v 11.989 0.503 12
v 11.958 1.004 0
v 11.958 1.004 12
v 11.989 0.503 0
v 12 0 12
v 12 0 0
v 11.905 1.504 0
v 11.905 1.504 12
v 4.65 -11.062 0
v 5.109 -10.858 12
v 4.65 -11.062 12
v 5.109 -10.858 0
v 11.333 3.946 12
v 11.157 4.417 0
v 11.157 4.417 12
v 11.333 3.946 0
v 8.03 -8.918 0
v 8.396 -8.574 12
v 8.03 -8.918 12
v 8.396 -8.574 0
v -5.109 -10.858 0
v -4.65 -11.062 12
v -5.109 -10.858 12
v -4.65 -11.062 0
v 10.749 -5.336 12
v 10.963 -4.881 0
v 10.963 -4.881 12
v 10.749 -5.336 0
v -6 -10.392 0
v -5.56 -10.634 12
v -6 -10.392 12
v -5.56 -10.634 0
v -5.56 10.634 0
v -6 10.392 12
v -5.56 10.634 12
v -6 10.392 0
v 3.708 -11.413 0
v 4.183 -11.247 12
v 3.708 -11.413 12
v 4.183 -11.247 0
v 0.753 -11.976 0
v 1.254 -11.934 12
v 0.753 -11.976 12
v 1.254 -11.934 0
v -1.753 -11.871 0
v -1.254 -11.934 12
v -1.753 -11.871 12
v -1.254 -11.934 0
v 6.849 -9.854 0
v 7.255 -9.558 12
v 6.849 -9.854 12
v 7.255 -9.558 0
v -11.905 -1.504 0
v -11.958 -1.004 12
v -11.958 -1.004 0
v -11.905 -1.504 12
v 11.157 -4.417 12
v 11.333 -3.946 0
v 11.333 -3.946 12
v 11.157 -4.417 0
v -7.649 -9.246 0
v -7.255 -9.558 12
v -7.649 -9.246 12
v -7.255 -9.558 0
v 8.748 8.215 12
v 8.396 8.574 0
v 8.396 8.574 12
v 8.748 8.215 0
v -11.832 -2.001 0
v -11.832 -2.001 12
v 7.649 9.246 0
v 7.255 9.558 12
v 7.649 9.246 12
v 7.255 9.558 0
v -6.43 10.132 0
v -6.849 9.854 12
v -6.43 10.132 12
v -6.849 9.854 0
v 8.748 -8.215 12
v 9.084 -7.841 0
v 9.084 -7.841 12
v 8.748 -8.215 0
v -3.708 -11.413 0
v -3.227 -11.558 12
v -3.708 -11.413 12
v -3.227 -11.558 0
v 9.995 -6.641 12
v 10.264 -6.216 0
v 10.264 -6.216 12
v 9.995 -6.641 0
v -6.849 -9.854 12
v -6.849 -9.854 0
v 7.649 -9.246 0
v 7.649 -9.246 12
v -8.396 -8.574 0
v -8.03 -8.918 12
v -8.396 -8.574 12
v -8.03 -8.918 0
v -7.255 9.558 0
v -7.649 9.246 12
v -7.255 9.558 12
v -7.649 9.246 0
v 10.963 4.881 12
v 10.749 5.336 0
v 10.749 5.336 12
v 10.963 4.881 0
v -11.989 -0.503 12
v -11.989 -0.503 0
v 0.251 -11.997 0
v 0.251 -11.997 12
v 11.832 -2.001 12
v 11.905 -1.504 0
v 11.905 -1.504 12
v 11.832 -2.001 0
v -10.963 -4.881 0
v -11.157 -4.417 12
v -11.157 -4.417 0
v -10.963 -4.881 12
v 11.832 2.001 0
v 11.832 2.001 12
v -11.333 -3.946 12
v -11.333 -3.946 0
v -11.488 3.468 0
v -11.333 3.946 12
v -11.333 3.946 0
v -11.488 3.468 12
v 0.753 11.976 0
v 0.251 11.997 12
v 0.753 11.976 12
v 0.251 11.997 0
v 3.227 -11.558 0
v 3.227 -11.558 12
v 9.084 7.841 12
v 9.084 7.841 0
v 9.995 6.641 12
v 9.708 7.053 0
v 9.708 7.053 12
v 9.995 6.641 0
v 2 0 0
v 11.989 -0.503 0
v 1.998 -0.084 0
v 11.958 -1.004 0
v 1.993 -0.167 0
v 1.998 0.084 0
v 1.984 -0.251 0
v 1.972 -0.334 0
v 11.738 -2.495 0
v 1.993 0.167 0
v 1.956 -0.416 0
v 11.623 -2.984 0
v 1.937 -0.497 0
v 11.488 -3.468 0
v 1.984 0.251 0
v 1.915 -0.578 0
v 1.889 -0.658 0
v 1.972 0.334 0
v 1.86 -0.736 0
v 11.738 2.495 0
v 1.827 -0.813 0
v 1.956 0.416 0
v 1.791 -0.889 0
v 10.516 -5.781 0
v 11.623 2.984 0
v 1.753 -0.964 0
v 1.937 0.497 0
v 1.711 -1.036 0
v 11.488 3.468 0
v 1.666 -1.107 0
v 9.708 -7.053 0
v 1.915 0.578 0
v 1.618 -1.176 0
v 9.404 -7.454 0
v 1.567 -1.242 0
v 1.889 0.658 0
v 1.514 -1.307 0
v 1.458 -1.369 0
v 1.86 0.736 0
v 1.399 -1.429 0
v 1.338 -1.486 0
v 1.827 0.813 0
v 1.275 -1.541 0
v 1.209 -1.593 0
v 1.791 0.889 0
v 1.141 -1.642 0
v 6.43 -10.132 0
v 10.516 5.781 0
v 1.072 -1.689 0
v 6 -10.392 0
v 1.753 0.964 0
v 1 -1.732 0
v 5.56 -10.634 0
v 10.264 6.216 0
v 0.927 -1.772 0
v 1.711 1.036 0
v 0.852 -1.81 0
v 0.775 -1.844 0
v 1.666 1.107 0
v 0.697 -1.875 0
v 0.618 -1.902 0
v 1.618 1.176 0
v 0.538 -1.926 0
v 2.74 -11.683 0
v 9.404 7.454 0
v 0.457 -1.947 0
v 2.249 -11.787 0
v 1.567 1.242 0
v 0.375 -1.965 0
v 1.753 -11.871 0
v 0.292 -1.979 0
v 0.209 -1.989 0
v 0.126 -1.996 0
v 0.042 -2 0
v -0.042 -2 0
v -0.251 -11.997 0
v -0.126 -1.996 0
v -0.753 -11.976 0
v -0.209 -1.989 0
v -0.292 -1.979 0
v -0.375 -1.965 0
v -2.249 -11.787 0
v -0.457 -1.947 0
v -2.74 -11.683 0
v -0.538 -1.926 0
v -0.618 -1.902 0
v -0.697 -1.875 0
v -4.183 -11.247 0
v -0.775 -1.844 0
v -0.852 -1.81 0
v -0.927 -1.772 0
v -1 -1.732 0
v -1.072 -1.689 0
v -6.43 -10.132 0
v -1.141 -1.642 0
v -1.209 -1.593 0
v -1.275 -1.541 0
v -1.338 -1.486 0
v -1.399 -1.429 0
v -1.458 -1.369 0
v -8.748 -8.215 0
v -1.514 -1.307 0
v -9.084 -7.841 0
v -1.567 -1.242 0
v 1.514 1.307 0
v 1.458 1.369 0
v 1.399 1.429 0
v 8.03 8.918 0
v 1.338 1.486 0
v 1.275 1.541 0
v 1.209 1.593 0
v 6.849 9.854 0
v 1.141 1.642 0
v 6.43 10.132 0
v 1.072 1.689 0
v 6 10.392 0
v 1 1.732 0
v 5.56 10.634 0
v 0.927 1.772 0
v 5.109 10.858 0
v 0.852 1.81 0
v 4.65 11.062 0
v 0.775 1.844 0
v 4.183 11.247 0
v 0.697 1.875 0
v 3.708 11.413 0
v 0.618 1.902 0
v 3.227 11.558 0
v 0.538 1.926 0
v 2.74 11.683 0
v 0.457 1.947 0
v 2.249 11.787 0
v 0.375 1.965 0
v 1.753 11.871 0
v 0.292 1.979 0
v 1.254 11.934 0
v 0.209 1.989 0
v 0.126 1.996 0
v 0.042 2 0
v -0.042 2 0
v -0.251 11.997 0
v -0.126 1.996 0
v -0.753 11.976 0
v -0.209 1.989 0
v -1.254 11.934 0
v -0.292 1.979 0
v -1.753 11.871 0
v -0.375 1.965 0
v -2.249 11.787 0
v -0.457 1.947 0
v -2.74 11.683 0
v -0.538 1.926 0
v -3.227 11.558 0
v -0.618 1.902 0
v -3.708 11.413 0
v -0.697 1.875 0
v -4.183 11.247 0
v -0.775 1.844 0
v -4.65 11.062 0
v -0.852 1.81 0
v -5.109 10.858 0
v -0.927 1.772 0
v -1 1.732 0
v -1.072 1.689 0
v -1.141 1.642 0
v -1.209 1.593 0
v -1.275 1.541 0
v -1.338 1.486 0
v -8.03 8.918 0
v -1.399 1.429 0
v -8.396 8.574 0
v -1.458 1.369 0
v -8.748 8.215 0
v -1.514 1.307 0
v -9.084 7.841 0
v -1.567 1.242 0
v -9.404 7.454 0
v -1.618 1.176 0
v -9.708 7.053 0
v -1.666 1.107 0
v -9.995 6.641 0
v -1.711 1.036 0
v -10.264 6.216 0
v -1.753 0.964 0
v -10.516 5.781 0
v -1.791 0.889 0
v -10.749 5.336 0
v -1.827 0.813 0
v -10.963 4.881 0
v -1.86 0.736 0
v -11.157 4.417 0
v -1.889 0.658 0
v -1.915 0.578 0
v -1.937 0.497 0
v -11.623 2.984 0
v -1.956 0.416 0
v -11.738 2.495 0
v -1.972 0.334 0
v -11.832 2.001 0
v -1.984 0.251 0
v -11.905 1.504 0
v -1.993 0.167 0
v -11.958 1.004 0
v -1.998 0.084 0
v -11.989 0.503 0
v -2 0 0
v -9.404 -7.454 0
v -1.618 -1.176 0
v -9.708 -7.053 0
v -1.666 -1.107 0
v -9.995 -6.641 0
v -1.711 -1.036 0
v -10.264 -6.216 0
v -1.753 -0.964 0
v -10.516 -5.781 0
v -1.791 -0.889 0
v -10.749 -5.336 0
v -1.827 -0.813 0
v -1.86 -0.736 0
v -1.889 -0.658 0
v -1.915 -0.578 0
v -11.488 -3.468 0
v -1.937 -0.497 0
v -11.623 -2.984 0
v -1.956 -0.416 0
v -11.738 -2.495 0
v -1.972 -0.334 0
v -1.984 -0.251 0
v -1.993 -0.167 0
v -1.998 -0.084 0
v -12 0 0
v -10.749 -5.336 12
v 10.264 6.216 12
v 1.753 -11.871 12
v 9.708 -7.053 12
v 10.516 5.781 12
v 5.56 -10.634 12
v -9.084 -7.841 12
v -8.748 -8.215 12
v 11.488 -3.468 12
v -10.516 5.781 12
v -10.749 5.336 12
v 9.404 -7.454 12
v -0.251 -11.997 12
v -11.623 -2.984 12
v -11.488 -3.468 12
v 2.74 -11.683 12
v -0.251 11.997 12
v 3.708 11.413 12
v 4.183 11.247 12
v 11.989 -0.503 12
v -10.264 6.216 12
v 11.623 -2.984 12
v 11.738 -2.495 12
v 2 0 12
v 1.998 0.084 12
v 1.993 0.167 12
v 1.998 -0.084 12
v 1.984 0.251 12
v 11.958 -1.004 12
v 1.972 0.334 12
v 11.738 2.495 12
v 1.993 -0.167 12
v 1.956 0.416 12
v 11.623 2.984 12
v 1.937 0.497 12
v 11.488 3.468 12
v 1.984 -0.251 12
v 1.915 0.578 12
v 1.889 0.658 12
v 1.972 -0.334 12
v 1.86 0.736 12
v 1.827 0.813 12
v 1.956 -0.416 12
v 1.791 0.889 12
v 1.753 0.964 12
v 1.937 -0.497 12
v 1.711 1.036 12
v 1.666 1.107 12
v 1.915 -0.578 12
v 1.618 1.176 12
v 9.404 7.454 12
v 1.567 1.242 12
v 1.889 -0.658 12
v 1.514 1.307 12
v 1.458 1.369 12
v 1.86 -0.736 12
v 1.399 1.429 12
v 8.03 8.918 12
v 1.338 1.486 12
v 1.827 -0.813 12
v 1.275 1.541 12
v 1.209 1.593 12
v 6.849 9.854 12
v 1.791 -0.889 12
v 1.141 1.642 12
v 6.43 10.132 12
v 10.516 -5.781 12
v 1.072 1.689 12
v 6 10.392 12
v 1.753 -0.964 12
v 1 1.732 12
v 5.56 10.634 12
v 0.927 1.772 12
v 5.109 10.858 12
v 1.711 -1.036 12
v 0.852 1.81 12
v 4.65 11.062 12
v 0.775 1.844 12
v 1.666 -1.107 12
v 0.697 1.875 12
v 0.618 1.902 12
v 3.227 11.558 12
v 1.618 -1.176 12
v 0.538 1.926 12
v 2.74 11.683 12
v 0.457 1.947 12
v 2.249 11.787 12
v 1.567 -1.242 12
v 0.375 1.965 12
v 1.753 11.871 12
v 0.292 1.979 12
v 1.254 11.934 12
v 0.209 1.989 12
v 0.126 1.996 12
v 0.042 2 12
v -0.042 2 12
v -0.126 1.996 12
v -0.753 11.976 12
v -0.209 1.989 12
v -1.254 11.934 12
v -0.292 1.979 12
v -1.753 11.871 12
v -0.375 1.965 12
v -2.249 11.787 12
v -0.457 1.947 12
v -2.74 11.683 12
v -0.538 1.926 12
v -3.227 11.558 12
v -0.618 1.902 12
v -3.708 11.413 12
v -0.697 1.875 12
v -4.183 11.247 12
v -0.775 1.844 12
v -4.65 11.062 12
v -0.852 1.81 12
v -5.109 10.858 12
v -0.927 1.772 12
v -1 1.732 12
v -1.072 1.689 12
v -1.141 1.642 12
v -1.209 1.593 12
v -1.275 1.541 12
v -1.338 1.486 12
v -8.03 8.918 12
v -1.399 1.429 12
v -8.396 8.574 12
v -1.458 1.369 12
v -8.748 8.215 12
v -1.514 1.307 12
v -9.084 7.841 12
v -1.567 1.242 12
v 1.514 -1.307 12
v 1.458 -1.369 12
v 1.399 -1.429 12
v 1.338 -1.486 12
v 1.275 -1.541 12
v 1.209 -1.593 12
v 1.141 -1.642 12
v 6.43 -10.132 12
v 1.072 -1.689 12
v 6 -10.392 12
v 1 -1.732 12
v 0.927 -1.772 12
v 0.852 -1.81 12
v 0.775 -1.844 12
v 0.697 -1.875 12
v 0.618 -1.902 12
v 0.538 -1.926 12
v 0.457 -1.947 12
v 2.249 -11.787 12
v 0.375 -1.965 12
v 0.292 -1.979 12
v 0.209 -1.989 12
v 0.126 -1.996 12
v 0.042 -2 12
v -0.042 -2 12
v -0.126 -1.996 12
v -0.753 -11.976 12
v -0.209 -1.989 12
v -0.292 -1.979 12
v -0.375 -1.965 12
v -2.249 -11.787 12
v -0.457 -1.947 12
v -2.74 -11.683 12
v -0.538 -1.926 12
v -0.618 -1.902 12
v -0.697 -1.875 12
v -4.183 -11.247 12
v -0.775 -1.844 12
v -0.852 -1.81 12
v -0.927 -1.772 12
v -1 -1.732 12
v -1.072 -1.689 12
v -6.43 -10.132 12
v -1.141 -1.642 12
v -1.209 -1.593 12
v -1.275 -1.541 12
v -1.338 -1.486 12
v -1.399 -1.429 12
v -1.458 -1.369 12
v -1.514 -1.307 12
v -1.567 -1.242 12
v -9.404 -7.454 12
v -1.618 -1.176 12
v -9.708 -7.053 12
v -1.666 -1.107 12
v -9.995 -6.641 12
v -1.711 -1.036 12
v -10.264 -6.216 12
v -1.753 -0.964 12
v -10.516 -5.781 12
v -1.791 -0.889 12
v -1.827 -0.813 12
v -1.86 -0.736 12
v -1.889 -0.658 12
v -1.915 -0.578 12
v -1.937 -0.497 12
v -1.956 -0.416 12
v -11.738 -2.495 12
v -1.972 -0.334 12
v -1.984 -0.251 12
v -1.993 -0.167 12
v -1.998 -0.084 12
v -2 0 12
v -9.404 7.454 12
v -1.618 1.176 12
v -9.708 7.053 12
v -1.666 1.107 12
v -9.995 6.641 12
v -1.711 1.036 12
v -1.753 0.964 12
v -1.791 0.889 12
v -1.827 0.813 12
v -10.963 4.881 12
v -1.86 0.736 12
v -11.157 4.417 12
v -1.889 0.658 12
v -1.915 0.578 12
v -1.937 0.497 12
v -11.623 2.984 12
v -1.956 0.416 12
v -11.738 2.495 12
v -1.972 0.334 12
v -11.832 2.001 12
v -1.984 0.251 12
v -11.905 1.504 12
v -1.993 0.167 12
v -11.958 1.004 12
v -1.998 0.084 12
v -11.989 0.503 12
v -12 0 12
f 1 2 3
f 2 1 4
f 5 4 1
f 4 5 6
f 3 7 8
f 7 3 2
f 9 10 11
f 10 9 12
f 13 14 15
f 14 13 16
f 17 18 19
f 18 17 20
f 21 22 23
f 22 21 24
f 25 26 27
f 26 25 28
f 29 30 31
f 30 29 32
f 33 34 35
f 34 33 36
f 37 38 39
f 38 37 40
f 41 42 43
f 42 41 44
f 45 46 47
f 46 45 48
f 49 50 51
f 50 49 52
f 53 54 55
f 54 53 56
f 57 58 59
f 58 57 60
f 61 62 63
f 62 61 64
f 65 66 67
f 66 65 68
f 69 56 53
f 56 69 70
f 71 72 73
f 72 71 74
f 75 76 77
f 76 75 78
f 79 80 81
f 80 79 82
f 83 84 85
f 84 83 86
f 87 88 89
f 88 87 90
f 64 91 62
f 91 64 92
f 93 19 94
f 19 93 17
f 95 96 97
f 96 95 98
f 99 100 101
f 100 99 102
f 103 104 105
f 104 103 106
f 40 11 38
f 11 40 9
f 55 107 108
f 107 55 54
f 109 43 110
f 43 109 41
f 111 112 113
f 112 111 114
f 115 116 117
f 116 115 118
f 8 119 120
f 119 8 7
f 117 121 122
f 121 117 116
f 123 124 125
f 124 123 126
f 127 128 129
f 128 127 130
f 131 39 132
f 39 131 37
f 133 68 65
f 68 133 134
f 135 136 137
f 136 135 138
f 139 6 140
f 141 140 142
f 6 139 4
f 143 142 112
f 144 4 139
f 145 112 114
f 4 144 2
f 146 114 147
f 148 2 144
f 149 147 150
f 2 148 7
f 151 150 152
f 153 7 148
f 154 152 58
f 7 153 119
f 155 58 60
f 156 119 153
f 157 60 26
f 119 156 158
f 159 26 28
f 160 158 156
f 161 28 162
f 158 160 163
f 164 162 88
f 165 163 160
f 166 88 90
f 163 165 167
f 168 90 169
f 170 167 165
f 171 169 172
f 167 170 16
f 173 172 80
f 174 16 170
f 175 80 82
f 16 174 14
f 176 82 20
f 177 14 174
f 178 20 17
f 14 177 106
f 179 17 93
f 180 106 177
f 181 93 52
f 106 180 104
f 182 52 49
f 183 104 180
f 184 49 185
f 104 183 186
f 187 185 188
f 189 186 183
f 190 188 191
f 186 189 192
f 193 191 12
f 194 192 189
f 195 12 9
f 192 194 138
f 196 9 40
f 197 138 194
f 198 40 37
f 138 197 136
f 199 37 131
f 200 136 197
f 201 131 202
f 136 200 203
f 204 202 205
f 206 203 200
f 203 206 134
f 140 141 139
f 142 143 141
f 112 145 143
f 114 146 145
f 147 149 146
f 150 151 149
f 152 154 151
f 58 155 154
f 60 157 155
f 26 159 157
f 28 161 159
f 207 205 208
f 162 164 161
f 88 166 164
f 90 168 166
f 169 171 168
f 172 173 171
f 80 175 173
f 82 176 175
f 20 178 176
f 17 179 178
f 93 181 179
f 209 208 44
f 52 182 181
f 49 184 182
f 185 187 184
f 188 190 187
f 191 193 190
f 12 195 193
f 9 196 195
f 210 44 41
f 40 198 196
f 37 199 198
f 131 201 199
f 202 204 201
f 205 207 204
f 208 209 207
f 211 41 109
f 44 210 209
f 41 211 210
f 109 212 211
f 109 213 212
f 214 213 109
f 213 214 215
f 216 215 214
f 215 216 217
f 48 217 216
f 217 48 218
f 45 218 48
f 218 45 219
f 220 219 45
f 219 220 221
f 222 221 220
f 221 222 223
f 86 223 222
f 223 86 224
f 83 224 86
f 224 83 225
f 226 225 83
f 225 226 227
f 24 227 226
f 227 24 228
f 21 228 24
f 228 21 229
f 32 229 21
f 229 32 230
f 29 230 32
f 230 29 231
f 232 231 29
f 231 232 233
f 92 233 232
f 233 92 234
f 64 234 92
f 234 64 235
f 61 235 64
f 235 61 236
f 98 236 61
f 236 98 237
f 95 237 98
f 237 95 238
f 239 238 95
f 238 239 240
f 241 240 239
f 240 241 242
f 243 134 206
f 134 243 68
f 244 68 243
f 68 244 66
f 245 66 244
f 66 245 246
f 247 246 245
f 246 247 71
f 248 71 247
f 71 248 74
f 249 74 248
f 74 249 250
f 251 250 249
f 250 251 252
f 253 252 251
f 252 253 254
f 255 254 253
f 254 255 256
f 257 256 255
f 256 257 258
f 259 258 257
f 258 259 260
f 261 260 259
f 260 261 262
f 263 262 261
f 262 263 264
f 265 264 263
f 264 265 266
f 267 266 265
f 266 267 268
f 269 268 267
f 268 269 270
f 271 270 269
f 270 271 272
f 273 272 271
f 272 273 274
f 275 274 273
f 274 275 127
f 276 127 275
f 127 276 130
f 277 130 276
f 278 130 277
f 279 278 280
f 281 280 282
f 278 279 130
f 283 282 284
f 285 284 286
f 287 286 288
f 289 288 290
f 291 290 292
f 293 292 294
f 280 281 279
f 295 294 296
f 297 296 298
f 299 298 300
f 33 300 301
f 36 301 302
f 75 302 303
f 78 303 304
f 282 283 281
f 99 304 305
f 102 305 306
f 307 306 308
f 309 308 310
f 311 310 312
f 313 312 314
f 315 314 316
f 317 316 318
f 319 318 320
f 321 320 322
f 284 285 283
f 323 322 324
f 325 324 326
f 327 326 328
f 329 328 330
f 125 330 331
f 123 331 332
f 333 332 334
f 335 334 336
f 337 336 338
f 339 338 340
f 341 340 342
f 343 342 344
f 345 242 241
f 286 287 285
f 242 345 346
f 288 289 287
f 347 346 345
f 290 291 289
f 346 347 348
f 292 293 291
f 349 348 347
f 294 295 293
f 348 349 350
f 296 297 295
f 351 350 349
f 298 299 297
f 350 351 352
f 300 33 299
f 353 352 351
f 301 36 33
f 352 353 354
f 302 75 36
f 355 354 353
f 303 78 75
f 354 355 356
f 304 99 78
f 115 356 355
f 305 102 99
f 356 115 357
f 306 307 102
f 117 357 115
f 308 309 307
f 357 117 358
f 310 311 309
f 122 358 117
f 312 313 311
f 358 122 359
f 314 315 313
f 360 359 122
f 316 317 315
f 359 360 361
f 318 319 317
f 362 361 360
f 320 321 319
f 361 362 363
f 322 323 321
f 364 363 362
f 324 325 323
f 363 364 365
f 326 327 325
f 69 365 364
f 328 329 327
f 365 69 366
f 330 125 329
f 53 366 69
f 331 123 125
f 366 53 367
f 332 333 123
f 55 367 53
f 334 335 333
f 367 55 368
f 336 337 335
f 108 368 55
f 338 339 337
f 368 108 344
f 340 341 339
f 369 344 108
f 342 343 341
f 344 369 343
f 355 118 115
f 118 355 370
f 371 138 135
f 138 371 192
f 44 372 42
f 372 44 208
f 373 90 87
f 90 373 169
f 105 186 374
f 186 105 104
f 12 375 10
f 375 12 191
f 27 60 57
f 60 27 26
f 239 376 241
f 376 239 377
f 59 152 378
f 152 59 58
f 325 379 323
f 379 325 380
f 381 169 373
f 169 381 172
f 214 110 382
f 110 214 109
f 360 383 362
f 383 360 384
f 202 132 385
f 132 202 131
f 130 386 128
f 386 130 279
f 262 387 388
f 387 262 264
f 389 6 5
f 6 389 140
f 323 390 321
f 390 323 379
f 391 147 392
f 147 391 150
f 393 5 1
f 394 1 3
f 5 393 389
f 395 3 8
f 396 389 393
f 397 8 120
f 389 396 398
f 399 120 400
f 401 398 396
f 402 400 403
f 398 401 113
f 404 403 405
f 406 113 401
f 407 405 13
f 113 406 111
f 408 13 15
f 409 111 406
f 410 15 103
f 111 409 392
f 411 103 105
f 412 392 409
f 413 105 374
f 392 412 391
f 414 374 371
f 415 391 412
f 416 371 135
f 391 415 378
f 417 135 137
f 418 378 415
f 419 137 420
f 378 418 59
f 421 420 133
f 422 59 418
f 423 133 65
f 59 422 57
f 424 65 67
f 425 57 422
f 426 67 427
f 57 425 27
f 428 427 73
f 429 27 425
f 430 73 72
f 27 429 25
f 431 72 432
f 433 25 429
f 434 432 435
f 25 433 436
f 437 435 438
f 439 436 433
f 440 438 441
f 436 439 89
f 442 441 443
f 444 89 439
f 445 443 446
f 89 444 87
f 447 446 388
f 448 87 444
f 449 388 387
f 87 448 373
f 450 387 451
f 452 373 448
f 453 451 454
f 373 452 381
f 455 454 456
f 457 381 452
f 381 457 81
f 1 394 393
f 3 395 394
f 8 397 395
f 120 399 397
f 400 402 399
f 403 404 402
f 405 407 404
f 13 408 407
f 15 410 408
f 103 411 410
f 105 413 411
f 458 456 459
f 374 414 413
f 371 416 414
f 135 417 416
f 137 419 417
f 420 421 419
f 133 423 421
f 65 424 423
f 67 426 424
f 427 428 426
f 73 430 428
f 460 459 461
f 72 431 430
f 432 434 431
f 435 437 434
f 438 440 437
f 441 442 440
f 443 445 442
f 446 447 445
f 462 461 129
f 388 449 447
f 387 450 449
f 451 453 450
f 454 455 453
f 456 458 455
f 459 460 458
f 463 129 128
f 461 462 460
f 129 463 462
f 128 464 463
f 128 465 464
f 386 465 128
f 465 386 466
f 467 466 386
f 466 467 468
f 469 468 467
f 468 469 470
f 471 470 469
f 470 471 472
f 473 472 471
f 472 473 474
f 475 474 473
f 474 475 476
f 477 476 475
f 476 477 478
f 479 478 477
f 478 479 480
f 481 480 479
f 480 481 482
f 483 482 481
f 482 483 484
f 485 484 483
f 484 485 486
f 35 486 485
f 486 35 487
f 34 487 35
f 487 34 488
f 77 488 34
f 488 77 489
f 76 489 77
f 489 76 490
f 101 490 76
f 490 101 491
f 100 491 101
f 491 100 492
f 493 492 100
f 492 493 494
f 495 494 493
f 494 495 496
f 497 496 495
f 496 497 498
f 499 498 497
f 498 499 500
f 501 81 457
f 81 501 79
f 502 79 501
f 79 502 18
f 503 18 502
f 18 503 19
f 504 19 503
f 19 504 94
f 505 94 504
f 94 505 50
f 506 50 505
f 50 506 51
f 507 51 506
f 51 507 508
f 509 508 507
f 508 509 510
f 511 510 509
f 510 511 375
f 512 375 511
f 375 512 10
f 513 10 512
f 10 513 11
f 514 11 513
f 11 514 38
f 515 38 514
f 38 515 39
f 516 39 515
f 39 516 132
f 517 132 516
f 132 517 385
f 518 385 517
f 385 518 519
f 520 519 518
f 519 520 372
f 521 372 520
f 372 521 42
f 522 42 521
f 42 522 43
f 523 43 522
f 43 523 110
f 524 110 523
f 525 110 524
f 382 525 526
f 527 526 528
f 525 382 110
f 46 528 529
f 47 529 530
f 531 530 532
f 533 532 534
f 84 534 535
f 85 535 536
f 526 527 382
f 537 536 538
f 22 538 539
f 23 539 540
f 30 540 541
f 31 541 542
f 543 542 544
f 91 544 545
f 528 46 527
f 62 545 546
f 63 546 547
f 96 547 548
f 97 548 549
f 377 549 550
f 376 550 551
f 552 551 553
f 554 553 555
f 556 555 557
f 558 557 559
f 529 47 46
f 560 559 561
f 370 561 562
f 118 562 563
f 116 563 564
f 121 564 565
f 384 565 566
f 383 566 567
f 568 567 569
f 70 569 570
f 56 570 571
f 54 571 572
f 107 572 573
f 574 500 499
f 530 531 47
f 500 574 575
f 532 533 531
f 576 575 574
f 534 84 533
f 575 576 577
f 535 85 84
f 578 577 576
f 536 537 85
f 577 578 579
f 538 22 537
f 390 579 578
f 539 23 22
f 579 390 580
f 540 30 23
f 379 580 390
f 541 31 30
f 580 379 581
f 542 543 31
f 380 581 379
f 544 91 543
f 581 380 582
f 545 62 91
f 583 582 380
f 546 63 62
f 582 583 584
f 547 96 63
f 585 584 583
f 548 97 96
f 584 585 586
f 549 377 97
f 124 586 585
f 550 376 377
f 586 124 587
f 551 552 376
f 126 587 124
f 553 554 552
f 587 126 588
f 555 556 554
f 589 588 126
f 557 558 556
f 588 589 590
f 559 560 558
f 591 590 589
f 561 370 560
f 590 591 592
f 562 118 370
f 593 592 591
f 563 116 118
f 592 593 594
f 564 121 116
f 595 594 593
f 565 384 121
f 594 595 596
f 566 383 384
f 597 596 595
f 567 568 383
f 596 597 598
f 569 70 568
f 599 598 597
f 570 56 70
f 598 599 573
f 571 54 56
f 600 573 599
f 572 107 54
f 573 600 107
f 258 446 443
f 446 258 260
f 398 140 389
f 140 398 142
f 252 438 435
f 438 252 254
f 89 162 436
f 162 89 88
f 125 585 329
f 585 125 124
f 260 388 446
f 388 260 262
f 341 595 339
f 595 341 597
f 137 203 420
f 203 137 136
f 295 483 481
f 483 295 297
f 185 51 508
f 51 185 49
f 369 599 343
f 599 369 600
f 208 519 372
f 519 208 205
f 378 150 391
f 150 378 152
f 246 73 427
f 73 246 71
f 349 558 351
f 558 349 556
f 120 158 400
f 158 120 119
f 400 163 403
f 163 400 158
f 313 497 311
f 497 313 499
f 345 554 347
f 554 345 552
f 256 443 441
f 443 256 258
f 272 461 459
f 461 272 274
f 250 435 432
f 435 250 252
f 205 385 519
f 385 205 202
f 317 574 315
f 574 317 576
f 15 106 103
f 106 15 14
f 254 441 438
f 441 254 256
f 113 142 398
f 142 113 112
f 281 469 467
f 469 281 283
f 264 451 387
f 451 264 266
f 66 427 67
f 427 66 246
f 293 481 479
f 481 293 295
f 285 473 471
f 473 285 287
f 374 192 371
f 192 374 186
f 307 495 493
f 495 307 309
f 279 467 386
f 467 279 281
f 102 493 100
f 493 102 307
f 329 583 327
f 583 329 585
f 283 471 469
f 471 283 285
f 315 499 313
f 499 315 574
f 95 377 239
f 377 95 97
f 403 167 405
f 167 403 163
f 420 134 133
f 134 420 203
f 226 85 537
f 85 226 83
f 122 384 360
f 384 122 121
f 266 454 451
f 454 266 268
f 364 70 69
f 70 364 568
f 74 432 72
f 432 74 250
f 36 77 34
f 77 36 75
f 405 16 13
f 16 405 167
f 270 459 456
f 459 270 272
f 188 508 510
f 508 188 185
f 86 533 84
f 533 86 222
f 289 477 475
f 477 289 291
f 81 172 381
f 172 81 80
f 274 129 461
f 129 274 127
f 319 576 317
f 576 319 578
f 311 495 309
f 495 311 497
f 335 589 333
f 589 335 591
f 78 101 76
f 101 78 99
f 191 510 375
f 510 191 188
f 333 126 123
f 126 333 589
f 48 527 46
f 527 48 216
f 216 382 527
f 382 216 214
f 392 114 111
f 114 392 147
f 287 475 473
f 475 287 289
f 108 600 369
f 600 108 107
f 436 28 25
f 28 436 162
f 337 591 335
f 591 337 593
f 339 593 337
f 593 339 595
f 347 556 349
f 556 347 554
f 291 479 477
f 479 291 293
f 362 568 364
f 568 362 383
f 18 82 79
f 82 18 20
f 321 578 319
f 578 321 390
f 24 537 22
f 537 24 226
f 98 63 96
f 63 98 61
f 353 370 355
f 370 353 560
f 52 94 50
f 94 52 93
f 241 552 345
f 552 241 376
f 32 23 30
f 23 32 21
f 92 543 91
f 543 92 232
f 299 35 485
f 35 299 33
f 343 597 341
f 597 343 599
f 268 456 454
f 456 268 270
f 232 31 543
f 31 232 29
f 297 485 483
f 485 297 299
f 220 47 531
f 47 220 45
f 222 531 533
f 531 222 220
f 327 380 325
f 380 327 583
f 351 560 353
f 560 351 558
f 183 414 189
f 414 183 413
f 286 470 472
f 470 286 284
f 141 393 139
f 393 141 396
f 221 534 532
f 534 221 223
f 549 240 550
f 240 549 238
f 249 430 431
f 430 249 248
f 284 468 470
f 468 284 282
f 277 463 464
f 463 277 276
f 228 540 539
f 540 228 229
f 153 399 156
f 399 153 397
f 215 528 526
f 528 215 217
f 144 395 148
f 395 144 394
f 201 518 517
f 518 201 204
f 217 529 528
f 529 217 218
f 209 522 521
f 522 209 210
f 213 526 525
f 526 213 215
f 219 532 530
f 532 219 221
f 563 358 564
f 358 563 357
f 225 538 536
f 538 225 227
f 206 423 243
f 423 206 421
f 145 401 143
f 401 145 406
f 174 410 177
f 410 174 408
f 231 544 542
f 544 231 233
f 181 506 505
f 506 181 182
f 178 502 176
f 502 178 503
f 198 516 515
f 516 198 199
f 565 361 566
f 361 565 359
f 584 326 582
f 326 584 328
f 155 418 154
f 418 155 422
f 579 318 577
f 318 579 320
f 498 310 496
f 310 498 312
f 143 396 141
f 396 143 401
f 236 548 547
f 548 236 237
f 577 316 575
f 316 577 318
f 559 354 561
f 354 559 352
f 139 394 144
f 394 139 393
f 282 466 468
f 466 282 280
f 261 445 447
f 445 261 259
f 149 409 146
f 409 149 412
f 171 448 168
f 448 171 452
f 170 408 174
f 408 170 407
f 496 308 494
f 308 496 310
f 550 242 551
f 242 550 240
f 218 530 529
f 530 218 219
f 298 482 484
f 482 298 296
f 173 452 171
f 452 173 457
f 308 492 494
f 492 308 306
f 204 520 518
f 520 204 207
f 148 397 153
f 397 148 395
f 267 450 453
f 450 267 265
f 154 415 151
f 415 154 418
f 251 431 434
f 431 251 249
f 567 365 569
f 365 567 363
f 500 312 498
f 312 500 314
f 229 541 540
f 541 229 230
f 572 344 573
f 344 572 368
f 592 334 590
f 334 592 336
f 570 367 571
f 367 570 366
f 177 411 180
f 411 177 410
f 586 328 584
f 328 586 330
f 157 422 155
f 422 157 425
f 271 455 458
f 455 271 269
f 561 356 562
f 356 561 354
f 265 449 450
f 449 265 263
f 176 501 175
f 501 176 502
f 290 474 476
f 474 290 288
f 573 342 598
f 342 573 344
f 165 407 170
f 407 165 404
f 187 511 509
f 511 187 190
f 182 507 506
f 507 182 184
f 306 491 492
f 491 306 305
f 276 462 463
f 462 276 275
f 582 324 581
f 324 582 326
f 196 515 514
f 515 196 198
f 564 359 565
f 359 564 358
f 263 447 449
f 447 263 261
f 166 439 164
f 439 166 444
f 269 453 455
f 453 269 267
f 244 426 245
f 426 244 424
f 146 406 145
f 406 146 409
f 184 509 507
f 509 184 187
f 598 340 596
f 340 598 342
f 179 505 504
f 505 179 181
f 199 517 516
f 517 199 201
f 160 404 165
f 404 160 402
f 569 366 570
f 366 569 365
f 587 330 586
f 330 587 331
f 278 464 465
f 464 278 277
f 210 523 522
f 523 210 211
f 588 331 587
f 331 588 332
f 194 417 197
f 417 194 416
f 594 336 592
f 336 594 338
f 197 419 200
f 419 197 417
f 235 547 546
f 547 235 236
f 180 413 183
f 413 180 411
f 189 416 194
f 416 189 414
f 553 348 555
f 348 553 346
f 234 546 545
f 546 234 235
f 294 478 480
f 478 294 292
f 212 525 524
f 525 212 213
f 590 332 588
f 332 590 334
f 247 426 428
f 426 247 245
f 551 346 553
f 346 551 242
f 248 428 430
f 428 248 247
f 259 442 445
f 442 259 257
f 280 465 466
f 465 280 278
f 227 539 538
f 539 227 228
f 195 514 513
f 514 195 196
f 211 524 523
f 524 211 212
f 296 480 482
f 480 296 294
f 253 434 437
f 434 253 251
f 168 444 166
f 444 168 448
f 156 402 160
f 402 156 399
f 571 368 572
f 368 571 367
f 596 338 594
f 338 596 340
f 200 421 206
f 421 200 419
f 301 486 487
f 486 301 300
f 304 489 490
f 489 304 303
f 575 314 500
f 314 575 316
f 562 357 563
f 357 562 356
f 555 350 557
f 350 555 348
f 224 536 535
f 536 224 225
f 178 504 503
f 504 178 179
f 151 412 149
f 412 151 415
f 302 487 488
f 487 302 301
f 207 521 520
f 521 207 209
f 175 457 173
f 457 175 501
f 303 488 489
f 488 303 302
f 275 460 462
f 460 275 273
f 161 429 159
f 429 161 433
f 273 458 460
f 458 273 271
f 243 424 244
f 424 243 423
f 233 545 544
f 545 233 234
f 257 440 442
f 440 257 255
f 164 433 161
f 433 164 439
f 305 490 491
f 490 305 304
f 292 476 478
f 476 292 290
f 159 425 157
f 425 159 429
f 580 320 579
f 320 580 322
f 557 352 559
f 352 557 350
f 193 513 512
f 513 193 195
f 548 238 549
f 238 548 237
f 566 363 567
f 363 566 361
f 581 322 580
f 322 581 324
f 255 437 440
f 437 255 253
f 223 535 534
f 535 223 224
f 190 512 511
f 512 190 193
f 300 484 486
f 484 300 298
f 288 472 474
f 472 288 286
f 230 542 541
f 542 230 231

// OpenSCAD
$fn=150;

height = 12;

diameterInside = 4;
diameterOutside = 24;



difference()
{
cylinder(h=height, d=diameterOutside);

cylinder(h=height, d=diameterInside);

}


//END
